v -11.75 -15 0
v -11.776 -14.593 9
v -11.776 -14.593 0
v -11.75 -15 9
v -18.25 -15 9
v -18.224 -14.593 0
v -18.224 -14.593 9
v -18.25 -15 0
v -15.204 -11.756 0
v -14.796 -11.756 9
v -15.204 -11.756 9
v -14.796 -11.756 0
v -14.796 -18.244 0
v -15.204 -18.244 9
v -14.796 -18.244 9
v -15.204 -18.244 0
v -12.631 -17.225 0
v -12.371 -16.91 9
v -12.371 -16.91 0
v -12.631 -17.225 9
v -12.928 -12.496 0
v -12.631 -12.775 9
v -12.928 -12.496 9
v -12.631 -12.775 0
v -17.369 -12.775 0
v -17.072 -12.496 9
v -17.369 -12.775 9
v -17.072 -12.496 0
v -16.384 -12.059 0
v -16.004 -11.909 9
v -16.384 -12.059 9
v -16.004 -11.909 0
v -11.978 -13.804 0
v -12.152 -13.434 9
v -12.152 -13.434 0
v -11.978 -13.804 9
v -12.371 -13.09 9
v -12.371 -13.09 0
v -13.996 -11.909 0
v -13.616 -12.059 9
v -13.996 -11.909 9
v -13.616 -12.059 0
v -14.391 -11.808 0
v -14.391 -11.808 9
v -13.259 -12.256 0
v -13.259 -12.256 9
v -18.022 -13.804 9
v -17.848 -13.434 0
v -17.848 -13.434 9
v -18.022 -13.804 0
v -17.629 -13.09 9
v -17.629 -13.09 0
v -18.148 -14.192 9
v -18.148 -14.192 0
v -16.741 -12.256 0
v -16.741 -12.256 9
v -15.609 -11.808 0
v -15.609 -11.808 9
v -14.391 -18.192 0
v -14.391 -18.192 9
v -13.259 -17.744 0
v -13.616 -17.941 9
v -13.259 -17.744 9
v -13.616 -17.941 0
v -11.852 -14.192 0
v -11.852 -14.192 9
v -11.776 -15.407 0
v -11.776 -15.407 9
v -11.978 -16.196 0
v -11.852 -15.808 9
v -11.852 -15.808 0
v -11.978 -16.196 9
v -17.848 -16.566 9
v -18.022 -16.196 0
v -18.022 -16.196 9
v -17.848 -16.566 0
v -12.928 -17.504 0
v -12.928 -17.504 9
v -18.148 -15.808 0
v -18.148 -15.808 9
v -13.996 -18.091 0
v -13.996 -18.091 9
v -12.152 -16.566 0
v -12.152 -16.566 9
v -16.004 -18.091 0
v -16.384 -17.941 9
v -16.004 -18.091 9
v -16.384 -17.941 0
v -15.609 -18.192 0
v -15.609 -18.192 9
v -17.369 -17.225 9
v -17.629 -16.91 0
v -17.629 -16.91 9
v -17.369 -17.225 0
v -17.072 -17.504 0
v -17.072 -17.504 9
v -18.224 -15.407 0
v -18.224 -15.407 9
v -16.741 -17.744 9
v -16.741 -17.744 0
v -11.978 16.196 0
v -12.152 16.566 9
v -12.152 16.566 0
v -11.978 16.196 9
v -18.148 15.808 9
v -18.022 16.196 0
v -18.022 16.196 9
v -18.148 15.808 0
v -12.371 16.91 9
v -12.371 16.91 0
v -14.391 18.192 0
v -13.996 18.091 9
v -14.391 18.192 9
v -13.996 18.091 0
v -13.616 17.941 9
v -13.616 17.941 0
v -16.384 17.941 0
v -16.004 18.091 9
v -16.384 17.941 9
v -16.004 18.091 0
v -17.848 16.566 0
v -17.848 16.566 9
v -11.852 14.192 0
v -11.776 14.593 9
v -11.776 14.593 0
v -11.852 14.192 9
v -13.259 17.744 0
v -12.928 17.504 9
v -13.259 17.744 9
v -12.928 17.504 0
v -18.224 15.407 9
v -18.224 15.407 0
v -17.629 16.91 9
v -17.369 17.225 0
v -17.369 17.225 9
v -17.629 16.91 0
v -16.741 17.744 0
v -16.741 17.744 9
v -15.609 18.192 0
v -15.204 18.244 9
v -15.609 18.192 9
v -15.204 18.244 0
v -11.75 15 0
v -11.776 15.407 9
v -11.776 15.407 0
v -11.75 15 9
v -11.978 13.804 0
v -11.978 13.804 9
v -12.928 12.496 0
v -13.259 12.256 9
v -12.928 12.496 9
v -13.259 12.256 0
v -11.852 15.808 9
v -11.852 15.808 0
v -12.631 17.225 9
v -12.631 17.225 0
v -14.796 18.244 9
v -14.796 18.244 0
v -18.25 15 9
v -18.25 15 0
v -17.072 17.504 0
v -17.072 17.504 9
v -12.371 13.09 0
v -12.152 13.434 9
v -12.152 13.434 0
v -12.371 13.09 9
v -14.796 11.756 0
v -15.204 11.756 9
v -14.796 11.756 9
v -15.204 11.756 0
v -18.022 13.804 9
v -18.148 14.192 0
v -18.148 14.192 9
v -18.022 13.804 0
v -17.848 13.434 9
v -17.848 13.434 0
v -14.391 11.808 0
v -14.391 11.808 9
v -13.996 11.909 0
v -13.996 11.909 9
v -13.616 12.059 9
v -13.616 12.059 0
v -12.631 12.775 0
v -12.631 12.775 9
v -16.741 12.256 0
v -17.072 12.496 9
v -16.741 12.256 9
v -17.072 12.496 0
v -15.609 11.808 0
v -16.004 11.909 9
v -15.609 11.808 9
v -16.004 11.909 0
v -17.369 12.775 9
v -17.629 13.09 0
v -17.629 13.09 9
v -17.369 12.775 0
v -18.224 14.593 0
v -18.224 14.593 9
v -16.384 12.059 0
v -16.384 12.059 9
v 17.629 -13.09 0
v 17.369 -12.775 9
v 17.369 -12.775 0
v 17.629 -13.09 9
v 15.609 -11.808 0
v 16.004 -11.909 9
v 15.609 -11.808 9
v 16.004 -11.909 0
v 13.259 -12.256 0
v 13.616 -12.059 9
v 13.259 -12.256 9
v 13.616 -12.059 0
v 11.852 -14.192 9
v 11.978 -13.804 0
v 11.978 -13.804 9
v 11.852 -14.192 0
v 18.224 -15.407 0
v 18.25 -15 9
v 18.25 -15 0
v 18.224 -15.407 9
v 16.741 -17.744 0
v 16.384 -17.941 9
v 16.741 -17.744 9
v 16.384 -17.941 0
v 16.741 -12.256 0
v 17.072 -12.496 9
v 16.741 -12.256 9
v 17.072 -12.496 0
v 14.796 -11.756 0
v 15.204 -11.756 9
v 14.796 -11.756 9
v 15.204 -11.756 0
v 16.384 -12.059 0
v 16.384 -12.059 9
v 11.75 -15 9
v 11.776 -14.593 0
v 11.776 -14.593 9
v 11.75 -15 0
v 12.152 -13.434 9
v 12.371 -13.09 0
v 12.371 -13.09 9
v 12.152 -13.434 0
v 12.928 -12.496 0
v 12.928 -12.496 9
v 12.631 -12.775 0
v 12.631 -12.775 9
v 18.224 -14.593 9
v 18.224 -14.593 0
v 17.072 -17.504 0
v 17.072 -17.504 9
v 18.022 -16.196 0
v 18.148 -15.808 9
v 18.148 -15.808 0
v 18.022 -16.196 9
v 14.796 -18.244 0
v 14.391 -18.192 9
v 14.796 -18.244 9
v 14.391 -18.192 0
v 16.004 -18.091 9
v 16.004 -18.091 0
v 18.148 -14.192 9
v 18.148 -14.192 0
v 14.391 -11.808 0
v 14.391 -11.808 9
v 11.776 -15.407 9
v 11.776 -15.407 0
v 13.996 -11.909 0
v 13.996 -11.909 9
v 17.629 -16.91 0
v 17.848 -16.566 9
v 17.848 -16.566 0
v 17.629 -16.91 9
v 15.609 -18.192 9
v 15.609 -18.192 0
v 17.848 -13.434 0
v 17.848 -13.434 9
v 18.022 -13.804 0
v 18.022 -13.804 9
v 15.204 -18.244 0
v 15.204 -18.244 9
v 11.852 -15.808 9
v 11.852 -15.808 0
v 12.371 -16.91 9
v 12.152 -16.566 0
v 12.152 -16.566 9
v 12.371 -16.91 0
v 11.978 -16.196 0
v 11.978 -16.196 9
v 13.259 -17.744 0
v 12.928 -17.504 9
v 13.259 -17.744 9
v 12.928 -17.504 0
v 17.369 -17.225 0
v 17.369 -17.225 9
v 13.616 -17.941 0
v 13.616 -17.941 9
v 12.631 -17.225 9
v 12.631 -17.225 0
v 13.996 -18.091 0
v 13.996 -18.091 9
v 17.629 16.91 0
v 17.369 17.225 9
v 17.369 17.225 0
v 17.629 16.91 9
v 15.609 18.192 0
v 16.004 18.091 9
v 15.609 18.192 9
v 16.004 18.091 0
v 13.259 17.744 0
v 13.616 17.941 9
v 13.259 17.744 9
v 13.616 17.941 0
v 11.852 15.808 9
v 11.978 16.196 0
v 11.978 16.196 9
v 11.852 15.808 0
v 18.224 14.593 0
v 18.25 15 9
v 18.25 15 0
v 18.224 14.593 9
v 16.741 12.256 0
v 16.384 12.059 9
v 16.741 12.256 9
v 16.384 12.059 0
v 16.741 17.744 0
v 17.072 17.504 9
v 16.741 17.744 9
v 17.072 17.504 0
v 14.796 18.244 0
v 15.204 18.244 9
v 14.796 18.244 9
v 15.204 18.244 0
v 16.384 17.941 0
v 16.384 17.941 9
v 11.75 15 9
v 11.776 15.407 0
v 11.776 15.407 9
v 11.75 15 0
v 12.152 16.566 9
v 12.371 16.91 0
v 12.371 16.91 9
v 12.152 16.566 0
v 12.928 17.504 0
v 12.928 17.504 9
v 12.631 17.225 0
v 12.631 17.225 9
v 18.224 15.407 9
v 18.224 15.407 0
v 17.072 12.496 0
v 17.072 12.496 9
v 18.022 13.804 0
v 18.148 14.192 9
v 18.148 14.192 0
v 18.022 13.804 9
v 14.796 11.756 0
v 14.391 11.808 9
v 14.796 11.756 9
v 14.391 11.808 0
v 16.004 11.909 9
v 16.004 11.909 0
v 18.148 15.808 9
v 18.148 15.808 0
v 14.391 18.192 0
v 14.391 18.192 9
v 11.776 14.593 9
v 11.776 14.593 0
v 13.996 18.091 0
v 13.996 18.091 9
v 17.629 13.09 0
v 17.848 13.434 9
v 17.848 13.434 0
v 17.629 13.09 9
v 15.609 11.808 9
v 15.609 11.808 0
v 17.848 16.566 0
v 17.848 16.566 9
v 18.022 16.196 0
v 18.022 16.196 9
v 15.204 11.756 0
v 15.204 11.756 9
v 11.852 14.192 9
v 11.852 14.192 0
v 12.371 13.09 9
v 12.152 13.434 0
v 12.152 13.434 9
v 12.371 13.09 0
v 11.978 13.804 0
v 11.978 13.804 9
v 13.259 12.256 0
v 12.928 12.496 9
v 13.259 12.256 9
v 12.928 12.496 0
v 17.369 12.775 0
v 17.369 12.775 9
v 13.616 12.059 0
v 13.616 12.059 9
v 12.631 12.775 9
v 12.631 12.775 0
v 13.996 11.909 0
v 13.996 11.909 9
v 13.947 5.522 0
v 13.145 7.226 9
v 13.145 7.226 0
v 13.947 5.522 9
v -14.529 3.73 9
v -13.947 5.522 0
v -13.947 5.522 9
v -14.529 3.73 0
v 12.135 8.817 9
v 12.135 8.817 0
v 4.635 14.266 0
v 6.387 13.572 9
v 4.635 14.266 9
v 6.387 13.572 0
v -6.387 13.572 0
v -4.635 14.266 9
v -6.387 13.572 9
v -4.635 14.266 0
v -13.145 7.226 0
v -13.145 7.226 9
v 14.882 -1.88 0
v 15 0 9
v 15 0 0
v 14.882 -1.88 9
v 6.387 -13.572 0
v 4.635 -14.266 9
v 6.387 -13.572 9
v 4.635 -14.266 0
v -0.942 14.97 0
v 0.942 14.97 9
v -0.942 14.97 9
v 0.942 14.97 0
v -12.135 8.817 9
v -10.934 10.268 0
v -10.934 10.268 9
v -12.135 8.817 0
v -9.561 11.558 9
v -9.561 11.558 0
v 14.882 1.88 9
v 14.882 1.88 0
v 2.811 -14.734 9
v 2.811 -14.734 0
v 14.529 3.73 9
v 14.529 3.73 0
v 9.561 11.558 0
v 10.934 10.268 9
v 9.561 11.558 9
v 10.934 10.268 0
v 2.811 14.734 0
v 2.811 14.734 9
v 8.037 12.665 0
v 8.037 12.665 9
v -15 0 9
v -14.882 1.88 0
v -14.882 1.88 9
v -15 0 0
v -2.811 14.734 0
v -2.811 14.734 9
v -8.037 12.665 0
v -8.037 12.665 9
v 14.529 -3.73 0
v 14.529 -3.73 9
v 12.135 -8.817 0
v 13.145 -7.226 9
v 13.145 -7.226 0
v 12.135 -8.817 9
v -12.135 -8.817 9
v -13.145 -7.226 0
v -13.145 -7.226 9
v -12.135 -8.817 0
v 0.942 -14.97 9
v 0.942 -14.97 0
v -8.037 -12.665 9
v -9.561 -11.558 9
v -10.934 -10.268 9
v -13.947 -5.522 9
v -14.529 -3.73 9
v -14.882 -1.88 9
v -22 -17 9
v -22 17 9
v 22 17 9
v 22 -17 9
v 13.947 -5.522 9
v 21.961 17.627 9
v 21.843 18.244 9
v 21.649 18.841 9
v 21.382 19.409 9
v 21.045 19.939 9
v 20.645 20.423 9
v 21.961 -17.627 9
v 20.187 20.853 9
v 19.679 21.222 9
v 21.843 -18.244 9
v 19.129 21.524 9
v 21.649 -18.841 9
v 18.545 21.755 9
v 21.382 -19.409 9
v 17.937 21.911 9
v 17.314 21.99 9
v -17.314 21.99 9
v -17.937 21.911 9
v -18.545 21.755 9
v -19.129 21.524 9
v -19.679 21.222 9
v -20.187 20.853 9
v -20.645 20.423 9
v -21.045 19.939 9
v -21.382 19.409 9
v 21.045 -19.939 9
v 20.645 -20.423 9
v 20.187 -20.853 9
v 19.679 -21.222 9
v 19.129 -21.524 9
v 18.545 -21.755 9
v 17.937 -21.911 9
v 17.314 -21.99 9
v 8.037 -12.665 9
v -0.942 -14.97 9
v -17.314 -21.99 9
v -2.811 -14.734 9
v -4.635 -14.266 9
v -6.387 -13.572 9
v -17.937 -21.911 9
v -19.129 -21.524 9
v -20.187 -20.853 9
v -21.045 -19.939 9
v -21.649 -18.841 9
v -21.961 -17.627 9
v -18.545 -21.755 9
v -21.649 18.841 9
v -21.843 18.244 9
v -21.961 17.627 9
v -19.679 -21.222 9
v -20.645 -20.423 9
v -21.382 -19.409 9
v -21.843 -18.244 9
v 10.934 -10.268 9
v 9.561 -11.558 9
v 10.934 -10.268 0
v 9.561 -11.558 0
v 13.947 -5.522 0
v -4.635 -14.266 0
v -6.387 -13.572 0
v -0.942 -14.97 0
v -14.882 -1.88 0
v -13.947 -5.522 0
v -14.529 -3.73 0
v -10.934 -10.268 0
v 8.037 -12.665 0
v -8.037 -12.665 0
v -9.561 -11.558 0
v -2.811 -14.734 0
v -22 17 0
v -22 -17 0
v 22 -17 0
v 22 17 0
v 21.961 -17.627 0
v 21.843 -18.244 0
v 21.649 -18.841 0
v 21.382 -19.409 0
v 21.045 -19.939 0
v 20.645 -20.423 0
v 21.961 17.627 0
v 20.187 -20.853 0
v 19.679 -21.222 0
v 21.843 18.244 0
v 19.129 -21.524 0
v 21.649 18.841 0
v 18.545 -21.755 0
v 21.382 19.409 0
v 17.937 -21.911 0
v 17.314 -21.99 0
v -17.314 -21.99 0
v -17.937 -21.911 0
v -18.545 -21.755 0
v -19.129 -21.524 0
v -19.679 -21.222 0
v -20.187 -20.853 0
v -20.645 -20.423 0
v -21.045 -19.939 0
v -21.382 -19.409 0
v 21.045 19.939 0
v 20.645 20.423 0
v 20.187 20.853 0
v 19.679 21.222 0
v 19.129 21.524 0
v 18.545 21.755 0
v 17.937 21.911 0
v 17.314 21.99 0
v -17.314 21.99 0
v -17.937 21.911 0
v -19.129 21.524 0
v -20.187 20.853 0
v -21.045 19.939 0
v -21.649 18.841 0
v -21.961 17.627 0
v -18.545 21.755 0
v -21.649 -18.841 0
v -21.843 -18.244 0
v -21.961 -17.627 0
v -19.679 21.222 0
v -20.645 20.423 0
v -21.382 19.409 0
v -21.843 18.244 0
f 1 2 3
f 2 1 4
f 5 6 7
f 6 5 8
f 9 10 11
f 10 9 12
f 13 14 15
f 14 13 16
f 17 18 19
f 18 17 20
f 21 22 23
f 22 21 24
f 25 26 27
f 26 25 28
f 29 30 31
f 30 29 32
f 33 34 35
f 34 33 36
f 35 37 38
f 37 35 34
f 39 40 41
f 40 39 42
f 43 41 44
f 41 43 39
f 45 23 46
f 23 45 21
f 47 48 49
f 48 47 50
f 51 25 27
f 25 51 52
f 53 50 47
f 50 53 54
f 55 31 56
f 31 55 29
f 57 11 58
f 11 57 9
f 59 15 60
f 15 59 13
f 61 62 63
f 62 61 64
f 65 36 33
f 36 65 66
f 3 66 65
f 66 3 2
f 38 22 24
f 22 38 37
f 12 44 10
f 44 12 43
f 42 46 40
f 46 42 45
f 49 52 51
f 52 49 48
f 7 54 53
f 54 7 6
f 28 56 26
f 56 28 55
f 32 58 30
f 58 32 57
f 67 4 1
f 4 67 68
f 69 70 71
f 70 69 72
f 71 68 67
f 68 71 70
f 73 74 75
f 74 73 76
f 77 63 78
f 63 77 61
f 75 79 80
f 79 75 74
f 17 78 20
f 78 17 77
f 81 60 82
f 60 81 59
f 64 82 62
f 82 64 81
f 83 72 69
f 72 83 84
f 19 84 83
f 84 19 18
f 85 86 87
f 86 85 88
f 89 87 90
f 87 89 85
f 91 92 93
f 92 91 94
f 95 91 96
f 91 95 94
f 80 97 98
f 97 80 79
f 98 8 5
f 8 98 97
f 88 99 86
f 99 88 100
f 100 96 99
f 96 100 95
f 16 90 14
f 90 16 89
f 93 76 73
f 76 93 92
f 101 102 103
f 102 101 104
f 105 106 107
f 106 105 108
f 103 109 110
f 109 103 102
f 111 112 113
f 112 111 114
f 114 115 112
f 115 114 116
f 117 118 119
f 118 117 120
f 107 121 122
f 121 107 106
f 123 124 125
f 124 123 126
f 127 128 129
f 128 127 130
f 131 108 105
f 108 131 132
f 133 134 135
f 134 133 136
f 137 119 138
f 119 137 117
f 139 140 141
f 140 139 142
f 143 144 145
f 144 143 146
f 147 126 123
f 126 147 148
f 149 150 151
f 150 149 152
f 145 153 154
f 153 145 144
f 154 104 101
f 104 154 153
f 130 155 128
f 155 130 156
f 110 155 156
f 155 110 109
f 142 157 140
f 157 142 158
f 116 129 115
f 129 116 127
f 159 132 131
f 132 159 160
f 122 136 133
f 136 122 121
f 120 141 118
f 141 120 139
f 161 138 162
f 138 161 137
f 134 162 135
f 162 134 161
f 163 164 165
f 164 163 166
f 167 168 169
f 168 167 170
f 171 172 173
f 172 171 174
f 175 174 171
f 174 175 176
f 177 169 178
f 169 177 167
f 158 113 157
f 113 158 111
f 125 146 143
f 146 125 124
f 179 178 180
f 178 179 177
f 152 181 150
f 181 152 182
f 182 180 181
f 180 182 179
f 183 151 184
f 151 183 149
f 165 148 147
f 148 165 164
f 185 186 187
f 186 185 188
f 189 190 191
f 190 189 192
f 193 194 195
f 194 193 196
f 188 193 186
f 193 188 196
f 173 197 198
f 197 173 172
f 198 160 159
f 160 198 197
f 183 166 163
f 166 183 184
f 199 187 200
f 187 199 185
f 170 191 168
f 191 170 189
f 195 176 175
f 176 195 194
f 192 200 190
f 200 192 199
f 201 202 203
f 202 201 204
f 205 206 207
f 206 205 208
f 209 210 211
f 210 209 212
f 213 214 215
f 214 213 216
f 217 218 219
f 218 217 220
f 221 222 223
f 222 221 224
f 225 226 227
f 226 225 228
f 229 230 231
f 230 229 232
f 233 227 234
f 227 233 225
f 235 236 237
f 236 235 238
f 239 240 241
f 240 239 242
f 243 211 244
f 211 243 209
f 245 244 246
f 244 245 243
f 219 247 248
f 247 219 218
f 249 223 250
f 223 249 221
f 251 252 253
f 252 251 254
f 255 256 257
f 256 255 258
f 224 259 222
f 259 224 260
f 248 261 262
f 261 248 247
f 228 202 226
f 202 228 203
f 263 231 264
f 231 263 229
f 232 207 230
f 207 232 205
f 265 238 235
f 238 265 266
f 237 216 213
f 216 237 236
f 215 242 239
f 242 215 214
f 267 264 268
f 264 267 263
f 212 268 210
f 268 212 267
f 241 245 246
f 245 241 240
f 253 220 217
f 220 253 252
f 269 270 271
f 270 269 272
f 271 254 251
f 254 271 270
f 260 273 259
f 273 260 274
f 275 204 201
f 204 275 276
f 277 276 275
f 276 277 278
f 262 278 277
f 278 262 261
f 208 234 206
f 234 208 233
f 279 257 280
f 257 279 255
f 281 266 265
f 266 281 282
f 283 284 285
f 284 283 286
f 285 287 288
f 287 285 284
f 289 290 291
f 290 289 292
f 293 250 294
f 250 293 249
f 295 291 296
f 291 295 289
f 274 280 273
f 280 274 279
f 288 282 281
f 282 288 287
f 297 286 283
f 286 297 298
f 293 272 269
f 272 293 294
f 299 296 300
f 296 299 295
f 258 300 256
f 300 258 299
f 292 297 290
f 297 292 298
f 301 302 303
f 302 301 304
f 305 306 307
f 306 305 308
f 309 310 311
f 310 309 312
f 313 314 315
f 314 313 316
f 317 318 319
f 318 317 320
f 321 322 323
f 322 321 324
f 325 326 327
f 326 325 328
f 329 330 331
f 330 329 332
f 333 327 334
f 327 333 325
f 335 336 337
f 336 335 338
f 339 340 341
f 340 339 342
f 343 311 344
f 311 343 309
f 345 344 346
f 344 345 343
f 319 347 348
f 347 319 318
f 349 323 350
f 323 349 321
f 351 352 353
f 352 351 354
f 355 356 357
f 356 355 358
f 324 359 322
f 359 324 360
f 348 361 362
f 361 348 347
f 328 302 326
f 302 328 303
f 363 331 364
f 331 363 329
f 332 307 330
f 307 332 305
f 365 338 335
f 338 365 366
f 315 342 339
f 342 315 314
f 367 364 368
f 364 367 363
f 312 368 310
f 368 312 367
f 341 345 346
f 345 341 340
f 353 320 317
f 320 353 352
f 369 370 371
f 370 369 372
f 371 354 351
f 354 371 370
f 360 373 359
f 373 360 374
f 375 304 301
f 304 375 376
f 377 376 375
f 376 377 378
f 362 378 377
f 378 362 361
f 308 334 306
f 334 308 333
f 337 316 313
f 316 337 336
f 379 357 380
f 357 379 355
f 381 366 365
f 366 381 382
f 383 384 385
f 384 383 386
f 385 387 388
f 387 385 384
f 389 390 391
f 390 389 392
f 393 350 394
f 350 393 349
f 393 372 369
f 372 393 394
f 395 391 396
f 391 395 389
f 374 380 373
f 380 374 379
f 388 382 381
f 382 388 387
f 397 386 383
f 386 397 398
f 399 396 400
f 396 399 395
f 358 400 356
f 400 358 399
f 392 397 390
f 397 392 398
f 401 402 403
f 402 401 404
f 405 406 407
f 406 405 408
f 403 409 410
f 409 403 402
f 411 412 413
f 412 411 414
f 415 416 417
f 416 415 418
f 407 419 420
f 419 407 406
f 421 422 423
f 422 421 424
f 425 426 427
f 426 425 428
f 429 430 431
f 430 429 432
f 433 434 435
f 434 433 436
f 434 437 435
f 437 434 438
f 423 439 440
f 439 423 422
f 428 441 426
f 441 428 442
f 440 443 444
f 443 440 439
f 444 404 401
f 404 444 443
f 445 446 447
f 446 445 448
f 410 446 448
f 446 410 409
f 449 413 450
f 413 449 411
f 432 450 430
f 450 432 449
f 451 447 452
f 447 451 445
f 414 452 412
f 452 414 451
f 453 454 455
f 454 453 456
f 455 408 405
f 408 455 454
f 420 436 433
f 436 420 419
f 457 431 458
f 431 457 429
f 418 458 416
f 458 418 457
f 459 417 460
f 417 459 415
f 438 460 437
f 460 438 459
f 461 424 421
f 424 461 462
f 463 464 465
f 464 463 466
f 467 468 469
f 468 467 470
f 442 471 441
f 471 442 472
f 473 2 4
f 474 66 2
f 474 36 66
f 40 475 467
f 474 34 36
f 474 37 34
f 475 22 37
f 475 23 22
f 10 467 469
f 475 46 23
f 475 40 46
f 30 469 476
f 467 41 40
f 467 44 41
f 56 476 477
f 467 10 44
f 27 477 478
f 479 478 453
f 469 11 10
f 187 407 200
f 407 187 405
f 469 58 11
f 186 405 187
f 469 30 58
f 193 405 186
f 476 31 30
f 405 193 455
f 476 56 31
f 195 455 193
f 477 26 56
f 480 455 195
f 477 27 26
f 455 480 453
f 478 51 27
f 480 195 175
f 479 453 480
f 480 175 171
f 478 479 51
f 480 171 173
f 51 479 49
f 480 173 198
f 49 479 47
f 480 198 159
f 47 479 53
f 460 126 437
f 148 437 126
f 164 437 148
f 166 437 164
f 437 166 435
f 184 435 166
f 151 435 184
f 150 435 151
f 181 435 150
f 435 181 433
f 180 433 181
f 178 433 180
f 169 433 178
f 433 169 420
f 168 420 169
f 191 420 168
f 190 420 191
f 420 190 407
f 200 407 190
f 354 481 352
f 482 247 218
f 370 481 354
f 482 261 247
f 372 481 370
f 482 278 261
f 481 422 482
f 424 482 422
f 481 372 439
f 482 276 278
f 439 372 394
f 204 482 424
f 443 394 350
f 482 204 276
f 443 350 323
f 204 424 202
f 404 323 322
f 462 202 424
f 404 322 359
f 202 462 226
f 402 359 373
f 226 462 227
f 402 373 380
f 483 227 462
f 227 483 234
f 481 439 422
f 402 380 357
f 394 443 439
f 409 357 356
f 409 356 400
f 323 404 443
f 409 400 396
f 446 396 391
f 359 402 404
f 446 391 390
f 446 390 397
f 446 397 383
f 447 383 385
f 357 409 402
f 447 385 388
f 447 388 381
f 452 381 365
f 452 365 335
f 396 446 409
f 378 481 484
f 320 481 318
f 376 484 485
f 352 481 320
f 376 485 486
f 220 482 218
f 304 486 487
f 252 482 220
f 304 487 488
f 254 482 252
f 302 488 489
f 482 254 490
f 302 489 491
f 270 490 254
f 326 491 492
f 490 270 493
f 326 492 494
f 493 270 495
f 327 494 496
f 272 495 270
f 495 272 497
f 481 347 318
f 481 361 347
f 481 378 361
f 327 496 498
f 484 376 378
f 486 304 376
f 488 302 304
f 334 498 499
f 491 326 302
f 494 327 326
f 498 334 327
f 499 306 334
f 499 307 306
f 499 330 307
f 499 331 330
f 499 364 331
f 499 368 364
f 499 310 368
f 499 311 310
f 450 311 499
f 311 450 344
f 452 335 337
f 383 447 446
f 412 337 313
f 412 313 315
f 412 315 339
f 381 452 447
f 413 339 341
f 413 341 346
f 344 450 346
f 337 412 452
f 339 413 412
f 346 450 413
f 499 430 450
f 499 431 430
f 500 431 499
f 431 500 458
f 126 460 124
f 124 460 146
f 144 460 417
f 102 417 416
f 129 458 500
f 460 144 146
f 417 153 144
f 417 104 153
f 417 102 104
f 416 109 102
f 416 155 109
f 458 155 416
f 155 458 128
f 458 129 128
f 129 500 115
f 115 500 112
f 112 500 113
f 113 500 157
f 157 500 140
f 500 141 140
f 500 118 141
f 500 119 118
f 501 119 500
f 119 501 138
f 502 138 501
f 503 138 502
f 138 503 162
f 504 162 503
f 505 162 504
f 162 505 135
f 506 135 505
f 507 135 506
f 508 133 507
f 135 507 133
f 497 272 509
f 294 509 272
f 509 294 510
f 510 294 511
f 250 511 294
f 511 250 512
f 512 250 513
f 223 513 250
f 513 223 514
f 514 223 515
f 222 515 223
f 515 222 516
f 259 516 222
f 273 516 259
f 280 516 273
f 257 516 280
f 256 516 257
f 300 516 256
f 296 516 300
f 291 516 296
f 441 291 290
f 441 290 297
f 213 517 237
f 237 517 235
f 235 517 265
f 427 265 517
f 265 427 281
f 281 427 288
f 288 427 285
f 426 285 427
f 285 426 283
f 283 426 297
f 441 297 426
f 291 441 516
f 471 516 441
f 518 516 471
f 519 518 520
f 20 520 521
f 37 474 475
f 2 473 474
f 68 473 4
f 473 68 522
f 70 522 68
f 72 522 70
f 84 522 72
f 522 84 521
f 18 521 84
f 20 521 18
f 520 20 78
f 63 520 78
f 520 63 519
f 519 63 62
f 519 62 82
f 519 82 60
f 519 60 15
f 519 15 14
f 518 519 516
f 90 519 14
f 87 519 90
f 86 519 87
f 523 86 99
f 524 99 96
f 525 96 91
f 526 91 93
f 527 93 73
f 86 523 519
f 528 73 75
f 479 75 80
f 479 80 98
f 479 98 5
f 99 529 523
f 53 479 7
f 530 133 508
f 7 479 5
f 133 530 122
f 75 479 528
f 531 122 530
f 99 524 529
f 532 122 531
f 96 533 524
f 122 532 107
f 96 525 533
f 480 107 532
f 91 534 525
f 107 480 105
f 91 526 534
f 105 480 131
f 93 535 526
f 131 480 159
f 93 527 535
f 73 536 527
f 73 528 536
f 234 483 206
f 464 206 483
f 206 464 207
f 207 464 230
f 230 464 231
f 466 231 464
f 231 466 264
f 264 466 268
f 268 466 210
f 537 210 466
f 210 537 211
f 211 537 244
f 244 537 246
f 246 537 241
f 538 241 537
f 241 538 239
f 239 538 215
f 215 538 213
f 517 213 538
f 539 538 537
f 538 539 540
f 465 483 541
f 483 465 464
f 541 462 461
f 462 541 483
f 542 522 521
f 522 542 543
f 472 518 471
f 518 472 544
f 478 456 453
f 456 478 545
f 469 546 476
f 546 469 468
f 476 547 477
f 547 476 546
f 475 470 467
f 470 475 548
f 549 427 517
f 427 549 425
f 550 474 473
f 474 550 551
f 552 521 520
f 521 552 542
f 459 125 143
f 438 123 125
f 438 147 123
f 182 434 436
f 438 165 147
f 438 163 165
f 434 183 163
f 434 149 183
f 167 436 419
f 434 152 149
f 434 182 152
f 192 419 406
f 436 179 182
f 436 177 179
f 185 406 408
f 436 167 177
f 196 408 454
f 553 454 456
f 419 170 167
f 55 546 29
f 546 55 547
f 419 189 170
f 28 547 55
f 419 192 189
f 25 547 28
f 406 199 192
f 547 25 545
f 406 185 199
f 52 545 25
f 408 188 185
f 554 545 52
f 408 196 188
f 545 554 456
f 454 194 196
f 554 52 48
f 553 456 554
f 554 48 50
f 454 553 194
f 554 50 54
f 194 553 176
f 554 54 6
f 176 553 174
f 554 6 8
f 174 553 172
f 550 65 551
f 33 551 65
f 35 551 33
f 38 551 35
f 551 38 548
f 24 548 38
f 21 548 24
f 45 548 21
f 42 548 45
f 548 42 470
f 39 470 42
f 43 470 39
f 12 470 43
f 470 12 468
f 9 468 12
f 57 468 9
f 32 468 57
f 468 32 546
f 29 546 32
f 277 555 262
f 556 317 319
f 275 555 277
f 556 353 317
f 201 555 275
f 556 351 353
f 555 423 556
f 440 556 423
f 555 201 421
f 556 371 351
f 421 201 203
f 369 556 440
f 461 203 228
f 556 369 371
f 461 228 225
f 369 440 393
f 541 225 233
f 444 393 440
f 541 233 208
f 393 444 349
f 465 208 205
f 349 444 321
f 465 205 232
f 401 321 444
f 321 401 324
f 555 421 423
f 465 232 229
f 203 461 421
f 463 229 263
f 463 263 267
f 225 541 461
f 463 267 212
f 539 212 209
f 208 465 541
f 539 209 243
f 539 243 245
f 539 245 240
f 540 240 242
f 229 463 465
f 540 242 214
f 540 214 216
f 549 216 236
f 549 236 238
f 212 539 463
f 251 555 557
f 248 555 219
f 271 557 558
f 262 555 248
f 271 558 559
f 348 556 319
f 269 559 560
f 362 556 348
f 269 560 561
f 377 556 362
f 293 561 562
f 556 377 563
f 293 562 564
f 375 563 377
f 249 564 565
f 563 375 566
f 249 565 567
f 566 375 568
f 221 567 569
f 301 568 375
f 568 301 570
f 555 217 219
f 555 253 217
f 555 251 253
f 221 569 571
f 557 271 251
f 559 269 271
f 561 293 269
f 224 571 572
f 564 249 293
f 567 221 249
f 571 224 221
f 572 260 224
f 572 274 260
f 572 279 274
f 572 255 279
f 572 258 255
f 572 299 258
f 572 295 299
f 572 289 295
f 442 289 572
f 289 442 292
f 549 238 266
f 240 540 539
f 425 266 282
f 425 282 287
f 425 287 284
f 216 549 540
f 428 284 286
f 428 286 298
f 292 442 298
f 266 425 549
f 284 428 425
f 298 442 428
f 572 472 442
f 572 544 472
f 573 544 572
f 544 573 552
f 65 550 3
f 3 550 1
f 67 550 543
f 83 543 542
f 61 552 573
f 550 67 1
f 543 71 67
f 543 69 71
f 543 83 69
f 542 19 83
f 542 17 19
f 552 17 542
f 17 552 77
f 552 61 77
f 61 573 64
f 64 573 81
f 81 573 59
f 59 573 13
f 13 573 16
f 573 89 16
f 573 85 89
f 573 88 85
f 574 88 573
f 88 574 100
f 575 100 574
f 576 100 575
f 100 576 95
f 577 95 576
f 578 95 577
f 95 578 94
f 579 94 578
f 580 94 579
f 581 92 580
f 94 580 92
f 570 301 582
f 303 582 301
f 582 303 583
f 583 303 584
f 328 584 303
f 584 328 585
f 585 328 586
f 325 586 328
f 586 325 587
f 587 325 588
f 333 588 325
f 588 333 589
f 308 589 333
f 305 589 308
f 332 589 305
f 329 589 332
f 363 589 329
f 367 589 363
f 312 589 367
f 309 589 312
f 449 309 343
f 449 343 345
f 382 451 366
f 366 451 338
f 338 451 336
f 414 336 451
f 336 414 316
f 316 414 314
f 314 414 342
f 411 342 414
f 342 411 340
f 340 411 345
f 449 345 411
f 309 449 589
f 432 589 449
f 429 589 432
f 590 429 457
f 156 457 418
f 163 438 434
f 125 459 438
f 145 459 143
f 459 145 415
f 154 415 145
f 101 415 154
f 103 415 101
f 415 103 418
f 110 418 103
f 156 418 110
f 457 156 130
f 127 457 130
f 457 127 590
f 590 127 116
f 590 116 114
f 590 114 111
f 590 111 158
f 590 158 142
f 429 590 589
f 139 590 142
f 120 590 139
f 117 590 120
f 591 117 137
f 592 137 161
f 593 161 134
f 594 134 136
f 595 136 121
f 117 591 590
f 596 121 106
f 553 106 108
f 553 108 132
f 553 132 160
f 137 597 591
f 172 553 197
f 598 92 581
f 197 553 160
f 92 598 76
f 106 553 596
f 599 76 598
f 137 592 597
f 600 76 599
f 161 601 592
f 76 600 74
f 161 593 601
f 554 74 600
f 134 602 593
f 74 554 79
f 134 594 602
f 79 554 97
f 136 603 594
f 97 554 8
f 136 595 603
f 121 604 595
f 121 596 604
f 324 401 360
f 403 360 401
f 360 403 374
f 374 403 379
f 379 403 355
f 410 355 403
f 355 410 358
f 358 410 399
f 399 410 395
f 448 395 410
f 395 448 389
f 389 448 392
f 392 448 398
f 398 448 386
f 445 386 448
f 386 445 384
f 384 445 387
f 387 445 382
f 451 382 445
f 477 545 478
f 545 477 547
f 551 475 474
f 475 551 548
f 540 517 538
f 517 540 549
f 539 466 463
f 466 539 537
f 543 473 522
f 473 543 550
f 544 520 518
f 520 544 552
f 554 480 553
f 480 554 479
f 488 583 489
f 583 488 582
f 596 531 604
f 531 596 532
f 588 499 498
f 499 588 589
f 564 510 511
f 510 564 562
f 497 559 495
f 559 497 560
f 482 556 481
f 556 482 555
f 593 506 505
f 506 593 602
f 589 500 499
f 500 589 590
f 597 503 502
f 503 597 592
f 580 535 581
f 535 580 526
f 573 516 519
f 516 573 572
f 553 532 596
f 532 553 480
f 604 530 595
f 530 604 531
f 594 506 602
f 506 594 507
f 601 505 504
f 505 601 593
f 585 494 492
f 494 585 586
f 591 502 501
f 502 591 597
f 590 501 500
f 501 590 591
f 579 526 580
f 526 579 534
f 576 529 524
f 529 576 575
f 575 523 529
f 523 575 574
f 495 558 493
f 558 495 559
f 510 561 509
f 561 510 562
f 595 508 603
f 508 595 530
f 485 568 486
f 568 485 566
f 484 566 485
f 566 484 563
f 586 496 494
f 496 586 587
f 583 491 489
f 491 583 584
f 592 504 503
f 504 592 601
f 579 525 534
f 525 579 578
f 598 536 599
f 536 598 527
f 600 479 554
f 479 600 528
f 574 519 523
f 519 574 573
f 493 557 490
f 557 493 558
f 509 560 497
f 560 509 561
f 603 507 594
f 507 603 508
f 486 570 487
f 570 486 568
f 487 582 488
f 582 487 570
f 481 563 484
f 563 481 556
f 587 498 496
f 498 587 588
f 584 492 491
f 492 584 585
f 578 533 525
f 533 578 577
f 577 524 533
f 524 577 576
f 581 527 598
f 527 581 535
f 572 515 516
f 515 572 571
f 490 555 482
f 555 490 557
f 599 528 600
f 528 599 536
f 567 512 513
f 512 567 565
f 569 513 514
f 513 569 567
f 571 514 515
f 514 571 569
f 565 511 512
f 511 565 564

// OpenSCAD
$fn = 50;


difference() {
	union() {
		hull() {
			translate(v = [-17.0000000000, 17.0000000000, 0]) {
				cylinder(h = 9, r = 5);
			}
			translate(v = [17.0000000000, 17.0000000000, 0]) {
				cylinder(h = 9, r = 5);
			}
			translate(v = [-17.0000000000, -17.0000000000, 0]) {
				cylinder(h = 9, r = 5);
			}
			translate(v = [17.0000000000, -17.0000000000, 0]) {
				cylinder(h = 9, r = 5);
			}
		}
	}
	union() {
		#translate(v = [-15.0000000000, -15.0000000000, -100.0000000000]) {
			cylinder(h = 200, r = 3.2500000000);
		}
		#translate(v = [-15.0000000000, 15.0000000000, -100.0000000000]) {
			cylinder(h = 200, r = 3.2500000000);
		}
		#translate(v = [15.0000000000, -15.0000000000, -100.0000000000]) {
			cylinder(h = 200, r = 3.2500000000);
		}
		#translate(v = [15.0000000000, 15.0000000000, -100.0000000000]) {
			cylinder(h = 200, r = 3.2500000000);
		}
		#cylinder(h = 9, r = 15.0000000000);
	}
}
